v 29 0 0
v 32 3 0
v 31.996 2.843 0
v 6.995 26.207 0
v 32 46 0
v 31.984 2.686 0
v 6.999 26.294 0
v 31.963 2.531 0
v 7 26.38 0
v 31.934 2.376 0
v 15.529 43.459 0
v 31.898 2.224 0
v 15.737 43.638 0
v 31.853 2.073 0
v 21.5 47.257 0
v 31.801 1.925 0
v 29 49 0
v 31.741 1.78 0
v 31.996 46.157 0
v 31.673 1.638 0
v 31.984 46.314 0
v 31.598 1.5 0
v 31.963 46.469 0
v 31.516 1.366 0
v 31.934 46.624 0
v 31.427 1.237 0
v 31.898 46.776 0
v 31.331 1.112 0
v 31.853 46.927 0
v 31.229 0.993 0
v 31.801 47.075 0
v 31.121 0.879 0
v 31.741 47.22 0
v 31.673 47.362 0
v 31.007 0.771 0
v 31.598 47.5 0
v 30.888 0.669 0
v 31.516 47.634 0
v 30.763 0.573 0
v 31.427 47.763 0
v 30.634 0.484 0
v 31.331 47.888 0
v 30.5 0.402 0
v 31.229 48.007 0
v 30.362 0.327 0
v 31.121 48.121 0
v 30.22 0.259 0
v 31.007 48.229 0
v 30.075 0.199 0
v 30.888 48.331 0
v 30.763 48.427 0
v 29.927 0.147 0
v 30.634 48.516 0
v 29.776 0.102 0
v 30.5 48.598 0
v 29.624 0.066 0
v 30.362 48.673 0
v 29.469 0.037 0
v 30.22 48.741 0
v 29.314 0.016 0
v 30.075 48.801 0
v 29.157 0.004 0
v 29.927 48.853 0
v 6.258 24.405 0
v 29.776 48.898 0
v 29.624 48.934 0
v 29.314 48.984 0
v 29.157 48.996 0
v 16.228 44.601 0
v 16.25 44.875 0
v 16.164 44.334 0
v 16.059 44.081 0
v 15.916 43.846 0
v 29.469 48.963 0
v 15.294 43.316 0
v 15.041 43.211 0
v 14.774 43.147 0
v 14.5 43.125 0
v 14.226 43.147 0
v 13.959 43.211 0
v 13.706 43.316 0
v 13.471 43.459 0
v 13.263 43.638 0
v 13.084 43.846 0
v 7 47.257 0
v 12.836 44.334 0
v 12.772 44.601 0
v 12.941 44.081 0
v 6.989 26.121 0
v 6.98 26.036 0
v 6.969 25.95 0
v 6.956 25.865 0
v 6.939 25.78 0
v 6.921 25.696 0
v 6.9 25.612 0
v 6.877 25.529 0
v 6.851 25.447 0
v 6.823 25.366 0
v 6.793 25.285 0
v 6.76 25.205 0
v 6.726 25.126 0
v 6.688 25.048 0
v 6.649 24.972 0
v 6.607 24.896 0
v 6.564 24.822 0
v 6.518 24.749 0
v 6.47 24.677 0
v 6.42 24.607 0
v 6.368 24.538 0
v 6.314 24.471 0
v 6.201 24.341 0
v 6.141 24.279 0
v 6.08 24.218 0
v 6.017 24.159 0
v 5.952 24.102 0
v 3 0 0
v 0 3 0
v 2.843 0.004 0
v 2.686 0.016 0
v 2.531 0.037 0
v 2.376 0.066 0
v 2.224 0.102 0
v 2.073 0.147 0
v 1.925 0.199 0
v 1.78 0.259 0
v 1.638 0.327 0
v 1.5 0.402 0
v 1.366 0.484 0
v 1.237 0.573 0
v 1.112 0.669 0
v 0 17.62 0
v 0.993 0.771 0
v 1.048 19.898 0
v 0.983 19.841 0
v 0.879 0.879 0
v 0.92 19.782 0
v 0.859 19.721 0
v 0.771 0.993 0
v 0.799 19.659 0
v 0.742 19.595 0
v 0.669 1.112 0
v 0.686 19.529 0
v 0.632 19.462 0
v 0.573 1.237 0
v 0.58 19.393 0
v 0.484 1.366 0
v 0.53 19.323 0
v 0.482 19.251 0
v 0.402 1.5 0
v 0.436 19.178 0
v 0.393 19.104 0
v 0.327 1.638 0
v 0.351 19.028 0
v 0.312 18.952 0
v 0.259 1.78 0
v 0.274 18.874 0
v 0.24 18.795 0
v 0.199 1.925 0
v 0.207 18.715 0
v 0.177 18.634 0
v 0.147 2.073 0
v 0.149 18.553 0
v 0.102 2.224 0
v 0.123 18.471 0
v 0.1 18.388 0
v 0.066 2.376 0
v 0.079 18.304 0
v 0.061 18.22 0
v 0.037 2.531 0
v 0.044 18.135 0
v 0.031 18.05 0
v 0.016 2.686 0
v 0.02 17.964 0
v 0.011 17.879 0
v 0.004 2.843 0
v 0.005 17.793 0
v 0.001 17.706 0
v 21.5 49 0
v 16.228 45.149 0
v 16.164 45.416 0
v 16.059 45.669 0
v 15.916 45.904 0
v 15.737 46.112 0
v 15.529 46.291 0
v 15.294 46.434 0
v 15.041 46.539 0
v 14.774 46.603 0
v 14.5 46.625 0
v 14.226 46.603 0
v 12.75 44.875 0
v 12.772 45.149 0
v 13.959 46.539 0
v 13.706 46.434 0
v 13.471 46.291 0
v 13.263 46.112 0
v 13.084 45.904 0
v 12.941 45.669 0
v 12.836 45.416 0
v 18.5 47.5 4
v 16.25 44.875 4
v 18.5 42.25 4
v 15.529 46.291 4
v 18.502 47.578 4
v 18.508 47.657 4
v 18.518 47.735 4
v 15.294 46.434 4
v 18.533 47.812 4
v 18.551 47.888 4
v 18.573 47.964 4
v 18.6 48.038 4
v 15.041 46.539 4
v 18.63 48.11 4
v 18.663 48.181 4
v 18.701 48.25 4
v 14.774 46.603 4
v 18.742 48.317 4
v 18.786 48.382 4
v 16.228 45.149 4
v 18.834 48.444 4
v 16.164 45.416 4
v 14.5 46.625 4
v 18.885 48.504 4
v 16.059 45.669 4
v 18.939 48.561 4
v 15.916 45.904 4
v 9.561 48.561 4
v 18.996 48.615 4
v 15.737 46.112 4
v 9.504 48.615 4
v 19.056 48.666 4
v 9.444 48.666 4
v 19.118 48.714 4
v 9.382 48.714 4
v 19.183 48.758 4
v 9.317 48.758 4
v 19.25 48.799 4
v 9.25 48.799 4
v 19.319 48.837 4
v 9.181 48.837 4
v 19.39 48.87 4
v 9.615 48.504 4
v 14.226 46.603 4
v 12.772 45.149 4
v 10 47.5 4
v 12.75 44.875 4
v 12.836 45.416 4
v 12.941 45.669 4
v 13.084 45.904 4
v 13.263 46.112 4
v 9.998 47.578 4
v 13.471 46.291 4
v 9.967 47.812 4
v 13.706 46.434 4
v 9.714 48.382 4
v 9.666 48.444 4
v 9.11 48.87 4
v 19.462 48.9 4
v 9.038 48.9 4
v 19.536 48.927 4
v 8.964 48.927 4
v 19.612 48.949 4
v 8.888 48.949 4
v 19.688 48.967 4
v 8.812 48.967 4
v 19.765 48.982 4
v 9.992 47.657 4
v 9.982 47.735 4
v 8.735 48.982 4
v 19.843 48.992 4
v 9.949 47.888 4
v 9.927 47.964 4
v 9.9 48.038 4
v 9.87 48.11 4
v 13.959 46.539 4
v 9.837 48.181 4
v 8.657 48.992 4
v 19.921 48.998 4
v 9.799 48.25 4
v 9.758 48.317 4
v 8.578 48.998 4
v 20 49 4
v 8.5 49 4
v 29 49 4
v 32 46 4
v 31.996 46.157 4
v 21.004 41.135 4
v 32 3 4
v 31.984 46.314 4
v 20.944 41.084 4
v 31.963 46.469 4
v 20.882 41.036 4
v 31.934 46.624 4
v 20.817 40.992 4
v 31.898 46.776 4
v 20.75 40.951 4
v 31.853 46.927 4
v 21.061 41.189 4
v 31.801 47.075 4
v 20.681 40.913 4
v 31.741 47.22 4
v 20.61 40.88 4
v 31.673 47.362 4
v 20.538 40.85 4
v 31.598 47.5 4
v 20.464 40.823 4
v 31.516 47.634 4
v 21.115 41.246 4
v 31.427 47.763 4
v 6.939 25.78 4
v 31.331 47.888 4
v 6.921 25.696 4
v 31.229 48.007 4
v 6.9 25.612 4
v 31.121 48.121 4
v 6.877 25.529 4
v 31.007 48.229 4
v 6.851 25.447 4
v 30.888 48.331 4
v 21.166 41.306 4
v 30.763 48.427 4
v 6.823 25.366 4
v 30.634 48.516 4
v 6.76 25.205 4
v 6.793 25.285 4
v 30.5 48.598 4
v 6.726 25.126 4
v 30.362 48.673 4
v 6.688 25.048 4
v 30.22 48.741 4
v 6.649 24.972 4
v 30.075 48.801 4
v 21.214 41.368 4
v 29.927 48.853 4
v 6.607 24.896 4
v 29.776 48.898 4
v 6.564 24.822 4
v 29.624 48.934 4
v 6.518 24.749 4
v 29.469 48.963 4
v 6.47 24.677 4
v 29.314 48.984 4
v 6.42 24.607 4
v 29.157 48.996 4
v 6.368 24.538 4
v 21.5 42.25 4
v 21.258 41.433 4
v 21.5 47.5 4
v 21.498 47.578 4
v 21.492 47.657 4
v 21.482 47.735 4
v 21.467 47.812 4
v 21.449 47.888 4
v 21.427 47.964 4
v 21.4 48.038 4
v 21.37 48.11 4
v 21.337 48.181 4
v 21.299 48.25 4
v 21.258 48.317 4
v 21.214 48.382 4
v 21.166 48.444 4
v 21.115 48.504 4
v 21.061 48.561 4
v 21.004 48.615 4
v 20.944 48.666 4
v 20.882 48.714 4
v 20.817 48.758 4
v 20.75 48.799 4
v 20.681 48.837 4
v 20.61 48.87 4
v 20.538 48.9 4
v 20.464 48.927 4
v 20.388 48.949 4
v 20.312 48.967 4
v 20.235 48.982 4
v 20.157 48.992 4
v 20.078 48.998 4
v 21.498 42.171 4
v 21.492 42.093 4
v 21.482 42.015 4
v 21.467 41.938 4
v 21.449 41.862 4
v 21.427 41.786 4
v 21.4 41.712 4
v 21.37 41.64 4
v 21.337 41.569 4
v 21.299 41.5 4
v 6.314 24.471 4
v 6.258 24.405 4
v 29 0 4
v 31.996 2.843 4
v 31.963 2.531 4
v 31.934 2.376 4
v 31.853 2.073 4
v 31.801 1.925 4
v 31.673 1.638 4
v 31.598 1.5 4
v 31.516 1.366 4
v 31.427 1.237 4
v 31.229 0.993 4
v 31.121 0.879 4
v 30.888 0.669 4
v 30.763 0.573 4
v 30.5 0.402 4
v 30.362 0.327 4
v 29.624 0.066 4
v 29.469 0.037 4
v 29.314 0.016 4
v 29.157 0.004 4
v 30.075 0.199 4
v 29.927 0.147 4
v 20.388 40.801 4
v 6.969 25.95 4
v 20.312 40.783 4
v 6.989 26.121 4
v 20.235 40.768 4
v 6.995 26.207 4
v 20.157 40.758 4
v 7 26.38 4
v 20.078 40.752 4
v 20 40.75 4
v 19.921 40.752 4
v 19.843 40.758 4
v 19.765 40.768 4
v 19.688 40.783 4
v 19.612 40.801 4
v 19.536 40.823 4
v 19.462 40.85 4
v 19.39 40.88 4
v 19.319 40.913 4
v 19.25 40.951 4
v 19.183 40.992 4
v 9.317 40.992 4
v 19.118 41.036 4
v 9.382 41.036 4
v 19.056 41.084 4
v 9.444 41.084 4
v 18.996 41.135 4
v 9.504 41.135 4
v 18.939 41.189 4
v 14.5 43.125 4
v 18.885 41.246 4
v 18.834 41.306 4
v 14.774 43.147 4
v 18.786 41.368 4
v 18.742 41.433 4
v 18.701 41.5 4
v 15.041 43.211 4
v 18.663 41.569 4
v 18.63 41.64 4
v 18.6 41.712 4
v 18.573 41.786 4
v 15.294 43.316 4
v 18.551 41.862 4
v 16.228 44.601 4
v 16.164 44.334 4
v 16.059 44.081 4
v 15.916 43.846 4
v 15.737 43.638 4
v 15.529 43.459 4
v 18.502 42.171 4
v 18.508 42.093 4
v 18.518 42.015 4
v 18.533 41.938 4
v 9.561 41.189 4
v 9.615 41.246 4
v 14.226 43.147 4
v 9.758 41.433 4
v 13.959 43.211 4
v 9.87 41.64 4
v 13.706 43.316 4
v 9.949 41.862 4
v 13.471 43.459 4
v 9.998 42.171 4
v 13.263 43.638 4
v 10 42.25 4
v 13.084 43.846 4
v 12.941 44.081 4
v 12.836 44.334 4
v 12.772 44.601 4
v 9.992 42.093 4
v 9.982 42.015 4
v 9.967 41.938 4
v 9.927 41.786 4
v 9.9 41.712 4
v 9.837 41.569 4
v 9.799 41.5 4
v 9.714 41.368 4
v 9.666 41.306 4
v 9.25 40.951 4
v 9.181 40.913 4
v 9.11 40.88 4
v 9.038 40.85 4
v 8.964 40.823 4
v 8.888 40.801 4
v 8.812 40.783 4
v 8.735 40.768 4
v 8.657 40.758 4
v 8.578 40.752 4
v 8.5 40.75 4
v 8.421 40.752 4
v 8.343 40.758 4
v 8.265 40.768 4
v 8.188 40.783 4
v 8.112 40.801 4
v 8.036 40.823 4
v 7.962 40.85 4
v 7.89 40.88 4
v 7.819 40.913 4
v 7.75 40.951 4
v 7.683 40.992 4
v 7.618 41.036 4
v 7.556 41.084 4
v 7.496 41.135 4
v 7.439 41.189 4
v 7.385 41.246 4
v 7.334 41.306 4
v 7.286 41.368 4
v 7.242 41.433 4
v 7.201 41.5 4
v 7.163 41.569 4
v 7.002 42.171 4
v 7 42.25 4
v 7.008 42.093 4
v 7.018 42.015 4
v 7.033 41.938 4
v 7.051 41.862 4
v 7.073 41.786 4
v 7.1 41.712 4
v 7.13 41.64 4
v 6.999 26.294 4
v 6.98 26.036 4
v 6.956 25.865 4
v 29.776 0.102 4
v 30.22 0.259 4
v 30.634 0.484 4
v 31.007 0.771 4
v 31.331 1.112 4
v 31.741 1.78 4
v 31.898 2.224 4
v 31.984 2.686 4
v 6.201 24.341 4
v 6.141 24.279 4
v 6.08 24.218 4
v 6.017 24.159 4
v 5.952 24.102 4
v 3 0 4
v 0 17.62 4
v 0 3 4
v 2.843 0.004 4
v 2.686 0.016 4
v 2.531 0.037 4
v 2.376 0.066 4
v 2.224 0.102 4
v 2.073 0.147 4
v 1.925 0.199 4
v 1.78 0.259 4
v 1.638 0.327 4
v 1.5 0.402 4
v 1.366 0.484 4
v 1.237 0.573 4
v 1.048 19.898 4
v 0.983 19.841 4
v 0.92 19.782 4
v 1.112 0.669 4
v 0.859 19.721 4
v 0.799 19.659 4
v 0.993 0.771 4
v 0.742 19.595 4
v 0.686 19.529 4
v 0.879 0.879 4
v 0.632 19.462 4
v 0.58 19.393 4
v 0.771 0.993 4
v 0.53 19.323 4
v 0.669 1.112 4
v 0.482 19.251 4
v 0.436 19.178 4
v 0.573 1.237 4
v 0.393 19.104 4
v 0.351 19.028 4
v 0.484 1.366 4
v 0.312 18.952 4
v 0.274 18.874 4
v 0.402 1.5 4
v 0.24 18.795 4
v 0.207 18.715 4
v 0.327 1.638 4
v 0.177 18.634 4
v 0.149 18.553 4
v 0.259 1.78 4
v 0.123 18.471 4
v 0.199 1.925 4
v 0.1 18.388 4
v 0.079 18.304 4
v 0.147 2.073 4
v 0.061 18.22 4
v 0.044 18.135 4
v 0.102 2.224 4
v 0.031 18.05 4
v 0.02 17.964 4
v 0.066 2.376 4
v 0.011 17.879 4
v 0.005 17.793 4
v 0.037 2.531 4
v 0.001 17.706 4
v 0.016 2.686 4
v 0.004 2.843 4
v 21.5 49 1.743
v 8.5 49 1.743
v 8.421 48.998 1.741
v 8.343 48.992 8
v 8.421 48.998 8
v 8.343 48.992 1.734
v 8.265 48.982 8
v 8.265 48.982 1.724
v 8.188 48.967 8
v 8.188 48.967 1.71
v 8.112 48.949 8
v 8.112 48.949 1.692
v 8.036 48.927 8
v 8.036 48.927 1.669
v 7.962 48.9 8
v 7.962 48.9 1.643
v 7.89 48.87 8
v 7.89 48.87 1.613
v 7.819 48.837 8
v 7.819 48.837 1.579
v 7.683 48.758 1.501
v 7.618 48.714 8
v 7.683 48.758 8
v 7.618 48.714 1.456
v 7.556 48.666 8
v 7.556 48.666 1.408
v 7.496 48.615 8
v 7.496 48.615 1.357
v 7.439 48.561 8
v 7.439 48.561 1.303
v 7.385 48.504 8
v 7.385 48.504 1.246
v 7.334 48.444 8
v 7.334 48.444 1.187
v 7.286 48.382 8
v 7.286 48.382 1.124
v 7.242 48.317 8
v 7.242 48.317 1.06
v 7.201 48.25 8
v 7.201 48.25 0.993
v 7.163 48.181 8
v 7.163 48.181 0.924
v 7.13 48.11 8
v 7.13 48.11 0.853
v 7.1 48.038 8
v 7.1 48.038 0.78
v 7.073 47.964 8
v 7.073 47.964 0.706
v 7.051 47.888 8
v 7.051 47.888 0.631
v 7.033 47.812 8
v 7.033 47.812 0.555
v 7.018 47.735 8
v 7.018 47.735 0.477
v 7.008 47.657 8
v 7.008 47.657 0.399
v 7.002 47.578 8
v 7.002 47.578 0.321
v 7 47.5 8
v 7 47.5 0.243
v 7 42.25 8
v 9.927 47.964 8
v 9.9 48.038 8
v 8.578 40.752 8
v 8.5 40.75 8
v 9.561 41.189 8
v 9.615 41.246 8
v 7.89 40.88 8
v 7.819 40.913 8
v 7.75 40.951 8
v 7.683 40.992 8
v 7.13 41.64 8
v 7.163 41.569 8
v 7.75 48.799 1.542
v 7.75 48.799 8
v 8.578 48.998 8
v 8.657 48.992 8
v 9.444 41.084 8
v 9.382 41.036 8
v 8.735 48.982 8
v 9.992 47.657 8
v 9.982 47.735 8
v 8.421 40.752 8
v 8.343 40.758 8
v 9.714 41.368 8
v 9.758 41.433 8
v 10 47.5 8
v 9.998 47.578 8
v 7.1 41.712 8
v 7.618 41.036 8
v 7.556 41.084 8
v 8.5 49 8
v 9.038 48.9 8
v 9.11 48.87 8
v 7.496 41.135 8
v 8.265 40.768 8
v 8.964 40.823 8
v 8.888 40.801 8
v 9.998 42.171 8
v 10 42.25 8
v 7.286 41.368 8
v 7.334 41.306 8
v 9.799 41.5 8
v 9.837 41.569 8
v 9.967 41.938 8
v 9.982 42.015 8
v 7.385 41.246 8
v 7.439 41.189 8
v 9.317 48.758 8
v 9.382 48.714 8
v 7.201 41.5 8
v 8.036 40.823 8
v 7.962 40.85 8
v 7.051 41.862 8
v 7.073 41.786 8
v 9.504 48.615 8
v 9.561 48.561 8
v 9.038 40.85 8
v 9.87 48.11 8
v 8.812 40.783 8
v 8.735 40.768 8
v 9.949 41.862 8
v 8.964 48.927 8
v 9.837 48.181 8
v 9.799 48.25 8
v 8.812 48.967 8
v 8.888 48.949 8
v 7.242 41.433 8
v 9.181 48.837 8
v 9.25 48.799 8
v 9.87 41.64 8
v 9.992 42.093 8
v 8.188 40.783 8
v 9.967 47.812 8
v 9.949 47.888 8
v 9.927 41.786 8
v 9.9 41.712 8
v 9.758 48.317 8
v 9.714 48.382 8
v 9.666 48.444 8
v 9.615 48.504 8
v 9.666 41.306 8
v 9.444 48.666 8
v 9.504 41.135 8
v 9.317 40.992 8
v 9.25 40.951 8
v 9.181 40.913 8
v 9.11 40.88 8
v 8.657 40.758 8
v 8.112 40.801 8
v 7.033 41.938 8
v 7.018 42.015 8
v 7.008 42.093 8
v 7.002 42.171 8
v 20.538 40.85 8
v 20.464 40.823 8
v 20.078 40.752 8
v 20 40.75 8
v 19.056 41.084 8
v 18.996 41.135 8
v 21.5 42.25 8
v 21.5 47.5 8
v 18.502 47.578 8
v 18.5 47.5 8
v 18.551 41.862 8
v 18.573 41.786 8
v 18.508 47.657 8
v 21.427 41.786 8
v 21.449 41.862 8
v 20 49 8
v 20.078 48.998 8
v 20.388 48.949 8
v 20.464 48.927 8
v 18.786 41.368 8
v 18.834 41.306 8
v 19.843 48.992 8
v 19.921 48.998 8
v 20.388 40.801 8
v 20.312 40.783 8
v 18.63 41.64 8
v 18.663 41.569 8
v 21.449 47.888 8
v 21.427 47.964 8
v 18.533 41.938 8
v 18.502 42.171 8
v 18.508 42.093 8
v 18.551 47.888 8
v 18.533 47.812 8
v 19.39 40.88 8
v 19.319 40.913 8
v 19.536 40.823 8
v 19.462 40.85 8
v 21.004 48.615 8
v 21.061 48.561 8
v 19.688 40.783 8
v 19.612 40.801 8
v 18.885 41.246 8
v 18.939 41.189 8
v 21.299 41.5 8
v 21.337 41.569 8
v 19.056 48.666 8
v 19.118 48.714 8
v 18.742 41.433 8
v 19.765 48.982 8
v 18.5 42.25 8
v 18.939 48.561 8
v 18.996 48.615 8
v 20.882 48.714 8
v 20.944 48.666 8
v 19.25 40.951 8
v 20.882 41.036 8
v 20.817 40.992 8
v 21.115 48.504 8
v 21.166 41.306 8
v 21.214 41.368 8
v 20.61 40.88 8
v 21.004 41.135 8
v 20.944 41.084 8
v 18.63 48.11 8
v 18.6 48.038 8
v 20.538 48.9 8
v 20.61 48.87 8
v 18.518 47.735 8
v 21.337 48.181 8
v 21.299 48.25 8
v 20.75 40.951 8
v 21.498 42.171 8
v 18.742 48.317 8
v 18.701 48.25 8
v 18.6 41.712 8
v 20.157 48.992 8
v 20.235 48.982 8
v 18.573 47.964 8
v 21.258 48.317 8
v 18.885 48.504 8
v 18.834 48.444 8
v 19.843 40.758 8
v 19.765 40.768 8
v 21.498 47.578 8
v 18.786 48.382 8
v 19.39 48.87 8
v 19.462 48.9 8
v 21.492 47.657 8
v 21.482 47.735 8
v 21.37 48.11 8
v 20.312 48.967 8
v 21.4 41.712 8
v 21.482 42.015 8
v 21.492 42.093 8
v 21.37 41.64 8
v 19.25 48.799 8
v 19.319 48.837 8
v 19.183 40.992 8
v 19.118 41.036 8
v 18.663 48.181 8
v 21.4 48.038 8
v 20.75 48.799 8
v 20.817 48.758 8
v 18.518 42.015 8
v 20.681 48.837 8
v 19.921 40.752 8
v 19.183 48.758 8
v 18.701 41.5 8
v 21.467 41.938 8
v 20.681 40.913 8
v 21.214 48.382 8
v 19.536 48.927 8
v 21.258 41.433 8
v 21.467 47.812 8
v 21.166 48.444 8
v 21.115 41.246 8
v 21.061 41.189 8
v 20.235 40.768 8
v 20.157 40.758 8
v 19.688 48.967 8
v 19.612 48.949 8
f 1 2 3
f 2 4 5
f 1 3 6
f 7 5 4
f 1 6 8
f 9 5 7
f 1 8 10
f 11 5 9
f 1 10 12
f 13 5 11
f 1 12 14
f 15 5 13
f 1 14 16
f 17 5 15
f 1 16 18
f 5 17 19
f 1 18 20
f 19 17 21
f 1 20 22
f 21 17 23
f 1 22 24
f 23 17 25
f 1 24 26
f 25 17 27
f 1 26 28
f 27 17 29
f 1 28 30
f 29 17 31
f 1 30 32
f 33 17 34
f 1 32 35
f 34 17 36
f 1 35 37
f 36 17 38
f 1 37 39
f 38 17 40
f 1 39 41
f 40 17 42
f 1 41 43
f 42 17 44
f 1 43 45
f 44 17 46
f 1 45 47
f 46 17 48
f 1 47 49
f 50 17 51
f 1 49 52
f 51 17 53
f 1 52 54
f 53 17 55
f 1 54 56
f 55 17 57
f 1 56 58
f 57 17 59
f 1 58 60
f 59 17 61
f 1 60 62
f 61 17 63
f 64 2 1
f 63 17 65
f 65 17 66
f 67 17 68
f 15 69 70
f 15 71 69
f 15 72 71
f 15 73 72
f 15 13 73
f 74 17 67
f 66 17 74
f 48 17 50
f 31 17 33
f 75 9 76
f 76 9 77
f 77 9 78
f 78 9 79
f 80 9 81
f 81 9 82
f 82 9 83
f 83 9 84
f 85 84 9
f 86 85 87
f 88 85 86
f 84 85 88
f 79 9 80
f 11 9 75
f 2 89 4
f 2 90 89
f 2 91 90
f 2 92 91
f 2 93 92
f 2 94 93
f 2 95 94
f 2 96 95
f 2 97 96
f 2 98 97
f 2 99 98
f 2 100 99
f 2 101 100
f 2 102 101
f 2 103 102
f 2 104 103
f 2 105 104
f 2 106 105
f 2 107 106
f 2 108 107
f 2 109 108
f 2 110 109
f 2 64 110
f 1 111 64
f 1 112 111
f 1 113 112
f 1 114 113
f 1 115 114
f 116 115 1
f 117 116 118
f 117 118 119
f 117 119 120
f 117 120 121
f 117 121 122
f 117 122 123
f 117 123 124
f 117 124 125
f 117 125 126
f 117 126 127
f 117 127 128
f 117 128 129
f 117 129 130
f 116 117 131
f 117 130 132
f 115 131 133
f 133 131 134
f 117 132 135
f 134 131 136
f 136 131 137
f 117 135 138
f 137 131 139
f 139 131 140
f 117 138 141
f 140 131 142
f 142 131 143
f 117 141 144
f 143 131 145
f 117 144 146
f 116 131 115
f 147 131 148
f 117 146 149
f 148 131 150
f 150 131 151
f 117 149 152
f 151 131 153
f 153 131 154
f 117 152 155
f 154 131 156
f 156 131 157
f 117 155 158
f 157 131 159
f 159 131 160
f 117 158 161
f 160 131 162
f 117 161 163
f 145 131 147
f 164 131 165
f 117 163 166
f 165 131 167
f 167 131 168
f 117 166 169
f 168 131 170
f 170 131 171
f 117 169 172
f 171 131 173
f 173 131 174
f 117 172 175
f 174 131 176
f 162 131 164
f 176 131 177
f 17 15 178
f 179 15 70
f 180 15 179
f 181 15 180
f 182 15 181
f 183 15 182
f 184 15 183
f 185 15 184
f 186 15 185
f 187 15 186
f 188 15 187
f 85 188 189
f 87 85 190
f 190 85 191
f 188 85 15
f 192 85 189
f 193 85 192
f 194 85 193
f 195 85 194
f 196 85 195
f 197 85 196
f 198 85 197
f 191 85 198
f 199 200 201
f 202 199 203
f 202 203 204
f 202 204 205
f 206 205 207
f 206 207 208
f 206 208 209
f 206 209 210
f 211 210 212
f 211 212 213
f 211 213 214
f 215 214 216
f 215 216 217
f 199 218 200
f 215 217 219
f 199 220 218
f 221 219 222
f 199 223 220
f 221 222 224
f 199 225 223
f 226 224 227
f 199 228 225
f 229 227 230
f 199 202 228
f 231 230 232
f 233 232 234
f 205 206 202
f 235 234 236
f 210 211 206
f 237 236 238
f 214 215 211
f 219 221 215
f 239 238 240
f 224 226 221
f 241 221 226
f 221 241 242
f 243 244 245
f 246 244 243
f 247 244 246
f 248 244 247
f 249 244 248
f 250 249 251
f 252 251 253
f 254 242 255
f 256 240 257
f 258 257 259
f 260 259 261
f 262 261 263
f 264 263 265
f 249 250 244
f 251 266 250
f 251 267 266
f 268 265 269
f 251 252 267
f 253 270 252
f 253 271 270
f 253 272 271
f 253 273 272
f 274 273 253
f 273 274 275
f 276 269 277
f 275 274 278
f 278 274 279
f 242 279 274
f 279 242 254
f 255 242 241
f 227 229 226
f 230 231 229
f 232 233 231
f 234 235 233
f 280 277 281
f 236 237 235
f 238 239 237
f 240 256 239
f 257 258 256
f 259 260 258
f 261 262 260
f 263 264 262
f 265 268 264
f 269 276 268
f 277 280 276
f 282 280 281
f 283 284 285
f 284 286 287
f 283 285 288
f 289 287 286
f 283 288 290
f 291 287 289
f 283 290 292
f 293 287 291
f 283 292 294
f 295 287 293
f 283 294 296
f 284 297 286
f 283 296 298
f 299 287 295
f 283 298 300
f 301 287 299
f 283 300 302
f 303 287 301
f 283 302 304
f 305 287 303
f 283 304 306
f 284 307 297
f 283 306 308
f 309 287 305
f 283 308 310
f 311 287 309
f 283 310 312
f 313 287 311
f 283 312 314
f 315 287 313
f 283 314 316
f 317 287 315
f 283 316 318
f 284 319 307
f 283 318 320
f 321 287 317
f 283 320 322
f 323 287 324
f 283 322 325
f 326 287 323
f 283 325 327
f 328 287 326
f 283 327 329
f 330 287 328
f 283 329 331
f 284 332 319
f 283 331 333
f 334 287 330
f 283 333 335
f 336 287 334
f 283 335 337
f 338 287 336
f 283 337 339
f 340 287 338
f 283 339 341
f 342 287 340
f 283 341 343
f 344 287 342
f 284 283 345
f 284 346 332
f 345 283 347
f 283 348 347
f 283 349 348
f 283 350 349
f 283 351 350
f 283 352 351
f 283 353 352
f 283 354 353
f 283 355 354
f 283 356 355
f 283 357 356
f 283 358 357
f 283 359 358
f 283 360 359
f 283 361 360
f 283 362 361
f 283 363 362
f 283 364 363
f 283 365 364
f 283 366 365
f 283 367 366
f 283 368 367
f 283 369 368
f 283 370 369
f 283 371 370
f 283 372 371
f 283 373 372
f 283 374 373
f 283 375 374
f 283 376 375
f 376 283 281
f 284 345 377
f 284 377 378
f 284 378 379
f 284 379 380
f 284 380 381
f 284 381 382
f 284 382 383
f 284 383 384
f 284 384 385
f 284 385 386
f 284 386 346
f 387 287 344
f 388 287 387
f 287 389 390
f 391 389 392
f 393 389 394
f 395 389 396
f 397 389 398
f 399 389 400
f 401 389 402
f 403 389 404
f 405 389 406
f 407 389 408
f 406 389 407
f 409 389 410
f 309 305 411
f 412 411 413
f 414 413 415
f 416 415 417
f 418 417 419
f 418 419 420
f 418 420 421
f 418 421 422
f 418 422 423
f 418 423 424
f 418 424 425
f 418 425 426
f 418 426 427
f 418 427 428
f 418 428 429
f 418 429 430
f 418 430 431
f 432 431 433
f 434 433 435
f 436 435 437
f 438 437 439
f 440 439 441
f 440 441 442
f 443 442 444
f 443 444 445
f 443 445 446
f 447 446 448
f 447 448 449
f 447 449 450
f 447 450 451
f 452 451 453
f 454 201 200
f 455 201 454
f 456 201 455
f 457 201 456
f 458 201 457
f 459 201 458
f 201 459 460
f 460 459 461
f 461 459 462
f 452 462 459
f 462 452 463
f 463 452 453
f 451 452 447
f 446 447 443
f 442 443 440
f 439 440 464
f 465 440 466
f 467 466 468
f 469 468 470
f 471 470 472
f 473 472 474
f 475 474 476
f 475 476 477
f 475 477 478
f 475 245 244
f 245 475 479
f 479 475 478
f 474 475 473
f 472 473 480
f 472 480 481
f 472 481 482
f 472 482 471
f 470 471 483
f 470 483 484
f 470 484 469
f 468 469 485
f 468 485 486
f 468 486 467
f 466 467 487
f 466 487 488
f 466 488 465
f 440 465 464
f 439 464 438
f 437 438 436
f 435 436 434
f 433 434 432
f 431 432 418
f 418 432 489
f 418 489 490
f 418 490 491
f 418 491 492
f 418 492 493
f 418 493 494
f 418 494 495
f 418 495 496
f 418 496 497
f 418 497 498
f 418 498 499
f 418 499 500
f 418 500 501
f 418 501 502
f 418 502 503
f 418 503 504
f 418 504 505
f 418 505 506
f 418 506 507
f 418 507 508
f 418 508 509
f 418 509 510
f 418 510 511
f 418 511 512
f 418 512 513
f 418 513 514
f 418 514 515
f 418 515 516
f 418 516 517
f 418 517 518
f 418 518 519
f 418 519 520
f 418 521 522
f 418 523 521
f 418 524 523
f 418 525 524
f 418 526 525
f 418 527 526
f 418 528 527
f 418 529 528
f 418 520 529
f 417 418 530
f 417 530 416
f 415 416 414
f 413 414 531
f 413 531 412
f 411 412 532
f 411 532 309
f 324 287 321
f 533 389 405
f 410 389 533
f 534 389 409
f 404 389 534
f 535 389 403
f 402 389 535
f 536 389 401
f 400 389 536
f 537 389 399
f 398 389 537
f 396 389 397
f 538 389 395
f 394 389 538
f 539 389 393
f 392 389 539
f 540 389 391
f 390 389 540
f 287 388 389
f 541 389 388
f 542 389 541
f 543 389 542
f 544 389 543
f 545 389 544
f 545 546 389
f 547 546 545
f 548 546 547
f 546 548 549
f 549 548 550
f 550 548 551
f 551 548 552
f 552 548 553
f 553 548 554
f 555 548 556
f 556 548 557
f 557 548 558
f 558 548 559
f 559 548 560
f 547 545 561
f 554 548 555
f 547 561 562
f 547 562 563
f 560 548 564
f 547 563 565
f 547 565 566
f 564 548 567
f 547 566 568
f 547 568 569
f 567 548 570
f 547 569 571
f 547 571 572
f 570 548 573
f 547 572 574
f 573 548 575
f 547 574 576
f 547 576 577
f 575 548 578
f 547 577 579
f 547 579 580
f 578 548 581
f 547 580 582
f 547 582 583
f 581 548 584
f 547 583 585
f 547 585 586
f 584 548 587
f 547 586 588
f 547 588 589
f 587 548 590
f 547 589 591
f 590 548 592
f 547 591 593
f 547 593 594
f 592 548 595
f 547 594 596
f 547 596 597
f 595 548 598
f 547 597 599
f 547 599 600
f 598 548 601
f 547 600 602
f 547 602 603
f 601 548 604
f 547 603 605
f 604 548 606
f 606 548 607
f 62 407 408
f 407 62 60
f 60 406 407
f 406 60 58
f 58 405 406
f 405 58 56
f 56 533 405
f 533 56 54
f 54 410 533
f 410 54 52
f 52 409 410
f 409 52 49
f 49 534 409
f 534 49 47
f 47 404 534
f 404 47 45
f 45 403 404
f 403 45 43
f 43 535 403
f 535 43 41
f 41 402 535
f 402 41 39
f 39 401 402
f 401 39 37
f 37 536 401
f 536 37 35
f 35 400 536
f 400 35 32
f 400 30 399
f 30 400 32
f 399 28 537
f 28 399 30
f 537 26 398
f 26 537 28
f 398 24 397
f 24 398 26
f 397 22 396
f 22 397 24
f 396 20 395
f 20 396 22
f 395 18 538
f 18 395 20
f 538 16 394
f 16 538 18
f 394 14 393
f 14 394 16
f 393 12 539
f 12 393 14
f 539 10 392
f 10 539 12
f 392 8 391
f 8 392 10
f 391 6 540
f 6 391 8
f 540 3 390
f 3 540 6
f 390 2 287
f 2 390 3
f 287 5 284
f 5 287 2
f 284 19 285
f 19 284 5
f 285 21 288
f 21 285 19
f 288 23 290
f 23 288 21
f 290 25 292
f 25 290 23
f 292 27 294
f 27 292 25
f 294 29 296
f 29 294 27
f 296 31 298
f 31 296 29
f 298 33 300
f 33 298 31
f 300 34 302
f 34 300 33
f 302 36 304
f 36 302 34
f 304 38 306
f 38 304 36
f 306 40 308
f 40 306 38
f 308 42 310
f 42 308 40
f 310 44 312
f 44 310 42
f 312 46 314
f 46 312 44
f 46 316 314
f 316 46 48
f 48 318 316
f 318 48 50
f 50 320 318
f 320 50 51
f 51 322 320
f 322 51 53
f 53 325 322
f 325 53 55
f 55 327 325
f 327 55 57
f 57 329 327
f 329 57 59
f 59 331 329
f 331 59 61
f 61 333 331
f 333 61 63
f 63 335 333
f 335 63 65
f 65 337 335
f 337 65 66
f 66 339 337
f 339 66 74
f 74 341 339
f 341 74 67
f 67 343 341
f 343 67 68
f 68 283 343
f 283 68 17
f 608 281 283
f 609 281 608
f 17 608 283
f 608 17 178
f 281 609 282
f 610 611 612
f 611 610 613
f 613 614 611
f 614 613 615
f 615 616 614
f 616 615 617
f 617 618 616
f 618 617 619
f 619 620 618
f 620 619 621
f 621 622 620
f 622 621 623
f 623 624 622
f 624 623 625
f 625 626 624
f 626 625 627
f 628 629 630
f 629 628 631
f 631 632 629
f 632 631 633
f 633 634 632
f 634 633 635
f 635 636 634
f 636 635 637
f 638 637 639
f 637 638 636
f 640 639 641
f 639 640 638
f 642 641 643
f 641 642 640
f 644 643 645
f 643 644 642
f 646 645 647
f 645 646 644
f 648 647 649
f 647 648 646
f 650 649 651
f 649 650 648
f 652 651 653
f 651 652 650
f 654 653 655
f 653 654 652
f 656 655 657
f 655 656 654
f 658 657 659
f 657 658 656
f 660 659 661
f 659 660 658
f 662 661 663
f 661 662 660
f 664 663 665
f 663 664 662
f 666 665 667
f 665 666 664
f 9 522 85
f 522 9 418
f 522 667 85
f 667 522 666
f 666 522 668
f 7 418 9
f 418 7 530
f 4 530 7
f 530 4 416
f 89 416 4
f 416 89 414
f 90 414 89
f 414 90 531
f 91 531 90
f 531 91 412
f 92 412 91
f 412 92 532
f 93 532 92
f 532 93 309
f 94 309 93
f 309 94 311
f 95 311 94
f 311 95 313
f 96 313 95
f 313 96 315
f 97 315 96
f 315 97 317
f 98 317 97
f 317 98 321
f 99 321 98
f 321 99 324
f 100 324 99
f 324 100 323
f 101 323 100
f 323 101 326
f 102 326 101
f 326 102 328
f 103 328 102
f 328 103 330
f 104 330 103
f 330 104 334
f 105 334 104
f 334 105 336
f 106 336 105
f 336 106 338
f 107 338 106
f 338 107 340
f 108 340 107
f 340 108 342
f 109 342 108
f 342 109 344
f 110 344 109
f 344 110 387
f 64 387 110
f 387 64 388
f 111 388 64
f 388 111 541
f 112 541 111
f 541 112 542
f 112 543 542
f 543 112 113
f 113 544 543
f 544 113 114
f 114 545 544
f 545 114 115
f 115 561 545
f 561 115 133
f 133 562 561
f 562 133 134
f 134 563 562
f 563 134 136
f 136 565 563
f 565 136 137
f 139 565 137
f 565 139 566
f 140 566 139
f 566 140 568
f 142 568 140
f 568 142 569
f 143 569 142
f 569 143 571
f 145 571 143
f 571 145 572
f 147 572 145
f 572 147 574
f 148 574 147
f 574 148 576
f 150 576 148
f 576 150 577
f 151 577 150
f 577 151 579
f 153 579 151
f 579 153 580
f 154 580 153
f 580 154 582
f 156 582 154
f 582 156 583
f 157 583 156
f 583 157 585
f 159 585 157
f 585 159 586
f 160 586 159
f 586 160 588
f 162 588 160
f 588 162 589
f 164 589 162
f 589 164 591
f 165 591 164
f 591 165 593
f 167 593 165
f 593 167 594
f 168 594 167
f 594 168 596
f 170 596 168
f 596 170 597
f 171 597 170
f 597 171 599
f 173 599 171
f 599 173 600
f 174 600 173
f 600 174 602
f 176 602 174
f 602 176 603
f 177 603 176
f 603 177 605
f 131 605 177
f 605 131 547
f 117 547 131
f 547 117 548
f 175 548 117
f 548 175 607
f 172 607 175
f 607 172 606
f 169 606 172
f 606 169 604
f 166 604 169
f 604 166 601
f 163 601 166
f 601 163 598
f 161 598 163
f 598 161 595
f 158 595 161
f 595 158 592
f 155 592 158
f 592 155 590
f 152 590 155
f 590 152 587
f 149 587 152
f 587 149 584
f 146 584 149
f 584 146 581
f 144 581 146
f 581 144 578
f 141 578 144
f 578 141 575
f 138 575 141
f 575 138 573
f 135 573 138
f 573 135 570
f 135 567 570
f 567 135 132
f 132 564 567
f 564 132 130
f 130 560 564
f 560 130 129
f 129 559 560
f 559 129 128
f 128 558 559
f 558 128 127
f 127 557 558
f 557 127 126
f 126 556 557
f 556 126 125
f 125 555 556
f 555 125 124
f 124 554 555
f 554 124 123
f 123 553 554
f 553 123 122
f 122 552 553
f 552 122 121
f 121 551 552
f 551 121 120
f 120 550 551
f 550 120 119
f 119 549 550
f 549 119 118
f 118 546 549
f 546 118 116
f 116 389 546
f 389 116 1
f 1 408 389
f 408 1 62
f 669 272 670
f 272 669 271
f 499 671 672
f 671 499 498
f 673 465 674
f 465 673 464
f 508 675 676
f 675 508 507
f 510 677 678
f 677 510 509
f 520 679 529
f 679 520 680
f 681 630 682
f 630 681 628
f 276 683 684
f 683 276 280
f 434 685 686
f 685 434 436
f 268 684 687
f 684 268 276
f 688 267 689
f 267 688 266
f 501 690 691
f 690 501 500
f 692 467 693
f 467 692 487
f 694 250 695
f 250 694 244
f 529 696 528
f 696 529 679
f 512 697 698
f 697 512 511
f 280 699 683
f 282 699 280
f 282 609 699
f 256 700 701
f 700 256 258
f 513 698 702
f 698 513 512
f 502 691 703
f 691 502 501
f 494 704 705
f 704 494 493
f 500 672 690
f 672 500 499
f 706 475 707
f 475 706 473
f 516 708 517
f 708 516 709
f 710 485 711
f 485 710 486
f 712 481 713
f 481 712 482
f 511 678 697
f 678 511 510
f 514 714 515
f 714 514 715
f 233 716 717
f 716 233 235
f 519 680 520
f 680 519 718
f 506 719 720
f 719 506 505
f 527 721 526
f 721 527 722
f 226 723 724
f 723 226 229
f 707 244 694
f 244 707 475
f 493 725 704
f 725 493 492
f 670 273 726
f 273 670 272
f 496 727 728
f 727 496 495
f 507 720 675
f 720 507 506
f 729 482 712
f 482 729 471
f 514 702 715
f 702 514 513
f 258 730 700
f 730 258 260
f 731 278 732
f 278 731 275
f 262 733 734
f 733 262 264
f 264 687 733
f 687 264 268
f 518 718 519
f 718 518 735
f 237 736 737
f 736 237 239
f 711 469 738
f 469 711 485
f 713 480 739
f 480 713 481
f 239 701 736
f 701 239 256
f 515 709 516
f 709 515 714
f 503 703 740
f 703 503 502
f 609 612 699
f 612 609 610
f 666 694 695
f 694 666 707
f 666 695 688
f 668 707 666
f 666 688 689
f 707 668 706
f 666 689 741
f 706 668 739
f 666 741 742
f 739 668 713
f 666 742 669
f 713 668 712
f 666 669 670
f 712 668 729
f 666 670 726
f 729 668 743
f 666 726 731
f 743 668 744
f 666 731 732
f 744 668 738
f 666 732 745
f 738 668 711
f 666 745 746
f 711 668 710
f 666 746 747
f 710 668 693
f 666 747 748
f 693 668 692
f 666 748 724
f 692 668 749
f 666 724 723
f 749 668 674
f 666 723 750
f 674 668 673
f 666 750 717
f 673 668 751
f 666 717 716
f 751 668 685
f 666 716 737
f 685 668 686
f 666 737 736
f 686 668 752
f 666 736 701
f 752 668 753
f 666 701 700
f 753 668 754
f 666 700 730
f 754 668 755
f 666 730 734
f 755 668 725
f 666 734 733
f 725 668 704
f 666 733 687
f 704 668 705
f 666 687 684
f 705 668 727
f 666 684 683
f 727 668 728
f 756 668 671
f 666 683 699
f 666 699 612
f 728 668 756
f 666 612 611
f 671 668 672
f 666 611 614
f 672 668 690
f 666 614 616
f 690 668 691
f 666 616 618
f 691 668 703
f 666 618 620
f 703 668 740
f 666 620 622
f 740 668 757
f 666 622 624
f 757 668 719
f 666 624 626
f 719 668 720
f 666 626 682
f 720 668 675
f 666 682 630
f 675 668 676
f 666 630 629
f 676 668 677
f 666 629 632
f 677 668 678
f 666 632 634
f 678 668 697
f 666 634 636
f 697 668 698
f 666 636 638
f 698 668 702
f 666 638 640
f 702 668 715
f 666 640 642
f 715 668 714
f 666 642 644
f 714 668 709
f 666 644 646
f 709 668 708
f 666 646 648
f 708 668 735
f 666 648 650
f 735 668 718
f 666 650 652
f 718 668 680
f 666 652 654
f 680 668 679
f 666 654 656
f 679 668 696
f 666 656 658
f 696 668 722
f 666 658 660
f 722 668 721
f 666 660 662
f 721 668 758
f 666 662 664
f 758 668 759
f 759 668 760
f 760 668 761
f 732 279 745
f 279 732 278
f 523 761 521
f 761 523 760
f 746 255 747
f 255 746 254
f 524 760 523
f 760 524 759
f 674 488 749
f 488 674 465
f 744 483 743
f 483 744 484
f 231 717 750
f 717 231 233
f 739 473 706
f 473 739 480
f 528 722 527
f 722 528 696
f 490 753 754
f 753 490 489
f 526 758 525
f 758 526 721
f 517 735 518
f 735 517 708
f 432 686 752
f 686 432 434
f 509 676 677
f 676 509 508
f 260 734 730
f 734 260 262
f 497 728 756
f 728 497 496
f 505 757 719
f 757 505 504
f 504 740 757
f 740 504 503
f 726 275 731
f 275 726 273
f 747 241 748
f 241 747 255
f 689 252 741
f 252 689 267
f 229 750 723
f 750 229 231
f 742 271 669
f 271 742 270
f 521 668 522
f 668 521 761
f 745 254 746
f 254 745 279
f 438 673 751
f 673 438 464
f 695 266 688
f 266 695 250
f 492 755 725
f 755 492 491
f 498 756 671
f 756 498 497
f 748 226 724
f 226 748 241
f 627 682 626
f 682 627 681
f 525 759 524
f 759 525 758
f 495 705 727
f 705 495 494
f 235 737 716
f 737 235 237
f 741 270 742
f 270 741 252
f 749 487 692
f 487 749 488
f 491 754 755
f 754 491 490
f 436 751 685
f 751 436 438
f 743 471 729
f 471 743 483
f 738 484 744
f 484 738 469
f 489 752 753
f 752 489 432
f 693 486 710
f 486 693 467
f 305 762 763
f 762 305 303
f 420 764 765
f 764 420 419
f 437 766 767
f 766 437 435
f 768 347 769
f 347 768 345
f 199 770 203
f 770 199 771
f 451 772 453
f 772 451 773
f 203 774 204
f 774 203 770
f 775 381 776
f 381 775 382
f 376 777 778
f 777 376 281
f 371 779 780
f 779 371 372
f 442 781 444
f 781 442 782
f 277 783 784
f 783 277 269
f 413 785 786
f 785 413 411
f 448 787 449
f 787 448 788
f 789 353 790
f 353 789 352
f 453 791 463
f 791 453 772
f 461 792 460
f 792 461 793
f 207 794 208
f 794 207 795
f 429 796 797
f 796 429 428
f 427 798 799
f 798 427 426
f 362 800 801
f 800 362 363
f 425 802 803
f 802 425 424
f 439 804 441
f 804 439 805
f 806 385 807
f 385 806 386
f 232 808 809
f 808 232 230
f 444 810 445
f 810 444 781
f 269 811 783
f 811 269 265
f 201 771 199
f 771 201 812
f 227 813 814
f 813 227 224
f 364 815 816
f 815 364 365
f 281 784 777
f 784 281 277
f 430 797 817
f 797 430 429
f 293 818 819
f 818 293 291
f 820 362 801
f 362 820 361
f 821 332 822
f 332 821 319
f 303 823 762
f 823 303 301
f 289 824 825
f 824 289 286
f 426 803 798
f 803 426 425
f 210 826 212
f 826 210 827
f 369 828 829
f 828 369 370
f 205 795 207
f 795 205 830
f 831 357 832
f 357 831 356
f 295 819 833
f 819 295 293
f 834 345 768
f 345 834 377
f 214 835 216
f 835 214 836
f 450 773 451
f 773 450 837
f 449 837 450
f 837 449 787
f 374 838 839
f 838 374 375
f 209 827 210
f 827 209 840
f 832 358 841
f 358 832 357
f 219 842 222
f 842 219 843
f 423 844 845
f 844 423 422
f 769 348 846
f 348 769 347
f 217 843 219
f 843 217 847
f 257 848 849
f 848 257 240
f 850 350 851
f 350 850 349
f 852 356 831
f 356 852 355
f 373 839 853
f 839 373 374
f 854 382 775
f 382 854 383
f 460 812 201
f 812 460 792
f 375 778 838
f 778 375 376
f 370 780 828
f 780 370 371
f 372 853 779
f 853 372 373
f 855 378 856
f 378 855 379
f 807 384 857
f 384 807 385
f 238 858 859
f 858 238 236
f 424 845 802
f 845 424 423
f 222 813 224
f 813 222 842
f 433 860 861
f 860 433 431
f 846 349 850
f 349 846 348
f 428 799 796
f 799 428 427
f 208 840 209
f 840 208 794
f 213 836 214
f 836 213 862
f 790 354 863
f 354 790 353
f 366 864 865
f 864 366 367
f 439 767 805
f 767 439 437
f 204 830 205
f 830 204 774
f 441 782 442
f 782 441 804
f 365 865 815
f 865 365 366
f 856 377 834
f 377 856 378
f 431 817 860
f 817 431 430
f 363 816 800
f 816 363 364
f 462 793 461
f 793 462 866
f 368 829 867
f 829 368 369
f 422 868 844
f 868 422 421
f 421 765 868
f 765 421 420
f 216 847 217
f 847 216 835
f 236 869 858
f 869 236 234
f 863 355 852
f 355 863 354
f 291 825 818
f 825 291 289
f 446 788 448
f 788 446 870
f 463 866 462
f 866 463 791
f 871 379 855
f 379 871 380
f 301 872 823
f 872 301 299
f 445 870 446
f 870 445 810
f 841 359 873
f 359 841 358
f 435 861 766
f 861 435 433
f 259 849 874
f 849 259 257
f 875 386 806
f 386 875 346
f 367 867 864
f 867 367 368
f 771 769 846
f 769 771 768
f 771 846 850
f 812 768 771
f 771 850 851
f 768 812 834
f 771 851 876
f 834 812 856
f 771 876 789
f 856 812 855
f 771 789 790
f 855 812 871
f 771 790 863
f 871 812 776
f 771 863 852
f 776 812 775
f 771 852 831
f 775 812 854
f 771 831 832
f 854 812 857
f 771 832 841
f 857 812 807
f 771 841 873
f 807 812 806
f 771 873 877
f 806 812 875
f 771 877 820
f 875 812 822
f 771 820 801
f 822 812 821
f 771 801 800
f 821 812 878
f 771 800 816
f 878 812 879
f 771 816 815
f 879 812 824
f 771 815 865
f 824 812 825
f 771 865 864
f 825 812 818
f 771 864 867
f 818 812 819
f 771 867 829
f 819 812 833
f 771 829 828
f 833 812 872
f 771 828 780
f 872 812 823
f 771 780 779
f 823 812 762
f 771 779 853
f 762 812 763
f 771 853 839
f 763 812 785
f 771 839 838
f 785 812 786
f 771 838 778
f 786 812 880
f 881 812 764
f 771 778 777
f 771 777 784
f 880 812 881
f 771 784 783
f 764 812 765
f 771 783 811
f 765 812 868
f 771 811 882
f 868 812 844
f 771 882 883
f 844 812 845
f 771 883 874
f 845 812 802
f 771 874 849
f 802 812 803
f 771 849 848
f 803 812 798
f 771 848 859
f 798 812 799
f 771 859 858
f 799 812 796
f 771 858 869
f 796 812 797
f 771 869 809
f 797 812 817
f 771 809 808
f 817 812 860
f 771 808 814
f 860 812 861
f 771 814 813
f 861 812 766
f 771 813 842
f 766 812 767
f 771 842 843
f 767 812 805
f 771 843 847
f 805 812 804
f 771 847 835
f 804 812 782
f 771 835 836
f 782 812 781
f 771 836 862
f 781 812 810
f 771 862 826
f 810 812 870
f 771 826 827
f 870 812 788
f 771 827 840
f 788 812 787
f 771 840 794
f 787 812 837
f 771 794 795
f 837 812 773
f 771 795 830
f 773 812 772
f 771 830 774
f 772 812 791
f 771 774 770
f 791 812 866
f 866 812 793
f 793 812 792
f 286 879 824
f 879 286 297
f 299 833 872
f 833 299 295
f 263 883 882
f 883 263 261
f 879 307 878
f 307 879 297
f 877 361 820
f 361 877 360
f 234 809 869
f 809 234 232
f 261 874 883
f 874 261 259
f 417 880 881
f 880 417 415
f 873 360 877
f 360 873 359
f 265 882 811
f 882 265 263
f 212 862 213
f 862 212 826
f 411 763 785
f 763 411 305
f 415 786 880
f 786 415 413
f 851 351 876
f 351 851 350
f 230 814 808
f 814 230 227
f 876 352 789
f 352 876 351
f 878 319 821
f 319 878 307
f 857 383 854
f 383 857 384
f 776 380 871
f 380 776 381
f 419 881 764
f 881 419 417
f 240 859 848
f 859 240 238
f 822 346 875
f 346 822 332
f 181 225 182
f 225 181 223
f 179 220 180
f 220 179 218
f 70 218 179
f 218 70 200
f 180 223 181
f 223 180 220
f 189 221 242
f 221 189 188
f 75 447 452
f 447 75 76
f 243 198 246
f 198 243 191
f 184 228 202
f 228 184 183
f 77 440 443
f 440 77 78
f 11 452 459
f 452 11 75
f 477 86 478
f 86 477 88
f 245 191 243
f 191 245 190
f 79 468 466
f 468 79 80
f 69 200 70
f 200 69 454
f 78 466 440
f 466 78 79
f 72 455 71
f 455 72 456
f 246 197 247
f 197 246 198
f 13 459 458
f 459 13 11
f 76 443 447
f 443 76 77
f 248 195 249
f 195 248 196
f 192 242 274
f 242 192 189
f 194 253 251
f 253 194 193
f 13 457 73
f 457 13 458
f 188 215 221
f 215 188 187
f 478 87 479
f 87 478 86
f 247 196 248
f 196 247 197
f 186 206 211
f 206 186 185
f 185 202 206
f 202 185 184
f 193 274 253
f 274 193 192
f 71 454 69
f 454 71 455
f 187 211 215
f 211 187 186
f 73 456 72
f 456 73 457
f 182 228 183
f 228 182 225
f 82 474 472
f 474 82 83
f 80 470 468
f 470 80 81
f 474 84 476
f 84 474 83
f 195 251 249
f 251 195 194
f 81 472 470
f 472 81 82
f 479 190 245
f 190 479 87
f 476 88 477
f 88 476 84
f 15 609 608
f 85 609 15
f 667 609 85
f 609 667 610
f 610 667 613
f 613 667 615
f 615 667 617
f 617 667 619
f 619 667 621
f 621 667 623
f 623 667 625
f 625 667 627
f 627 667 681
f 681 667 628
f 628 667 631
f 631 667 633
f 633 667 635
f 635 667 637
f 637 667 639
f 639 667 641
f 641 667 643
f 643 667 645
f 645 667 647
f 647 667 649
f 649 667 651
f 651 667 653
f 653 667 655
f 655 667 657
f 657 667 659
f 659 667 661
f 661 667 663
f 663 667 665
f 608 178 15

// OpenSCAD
$fn = 40;   // Render detail level

/**********************************************************************
 * Replacement paddle for morse key (model unknown)
 **********************************************************************/

include <Round-Anything/polyround.scad>

// All measurements in mm

// Body dimensions
body_depth = 49;
body_height = 4;
body_corner_radius = 3;
body_corner_detail = 30;

// Lug dimensions
lug_width = 3;
lug_depth = 8.25;
lug_height = 4;
lug_corner_radius = 1.5;
lug_corner_detail = 30;

// Lug positions
lug1_x = 7;
lug2_x = 18.5;
lug_y = body_depth - lug_depth;

// Hole
hole_x = 14.5;
hole_y = body_depth - (lug_depth / 2);
hole_r = 1.75;


module lug(x, y, z, width, depth, height, radius) {
    translate([x, y, z]) {
        linear_extrude(height) {
            polygon(polyRound([[0,     0,     radius],
                               [width, 0,     radius],
                               [width, depth, radius],
                               [0,     depth, radius]], lug_corner_detail));
        }
    }
}

color("#88AA88") {
    difference() {
        union() {
            // Main body
            linear_extrude(body_height) {
                polygon(polyRound([[0,  0,          body_corner_radius],
                                   [32, 0,          body_corner_radius],
                                   [32, body_depth, body_corner_radius],
                                   [7,  body_depth, lug_corner_radius],  // match the radius of the lug directly above
                                   [7,  25,         body_corner_radius],
                                   [0,  19,         body_corner_radius]], body_corner_detail));
            };

            // Lugs
            lug(lug1_x, lug_y, 0, lug_width, lug_depth, body_height + lug_height, lug_corner_radius);
            lug(lug2_x, lug_y, 0, lug_width, lug_depth, body_height + lug_height, lug_corner_radius);
        }
        
        // Hole
        translate([hole_x, hole_y, -1]) {
            cylinder(h = body_height + 2, r = hole_r);
        }

        // Chamfer
        translate([0, body_depth, -2.5]) {
            rotate([45, 0, 0]) {
                cube([lug2_x + lug_width, 3, 3]);
            }
        }
    }
}
